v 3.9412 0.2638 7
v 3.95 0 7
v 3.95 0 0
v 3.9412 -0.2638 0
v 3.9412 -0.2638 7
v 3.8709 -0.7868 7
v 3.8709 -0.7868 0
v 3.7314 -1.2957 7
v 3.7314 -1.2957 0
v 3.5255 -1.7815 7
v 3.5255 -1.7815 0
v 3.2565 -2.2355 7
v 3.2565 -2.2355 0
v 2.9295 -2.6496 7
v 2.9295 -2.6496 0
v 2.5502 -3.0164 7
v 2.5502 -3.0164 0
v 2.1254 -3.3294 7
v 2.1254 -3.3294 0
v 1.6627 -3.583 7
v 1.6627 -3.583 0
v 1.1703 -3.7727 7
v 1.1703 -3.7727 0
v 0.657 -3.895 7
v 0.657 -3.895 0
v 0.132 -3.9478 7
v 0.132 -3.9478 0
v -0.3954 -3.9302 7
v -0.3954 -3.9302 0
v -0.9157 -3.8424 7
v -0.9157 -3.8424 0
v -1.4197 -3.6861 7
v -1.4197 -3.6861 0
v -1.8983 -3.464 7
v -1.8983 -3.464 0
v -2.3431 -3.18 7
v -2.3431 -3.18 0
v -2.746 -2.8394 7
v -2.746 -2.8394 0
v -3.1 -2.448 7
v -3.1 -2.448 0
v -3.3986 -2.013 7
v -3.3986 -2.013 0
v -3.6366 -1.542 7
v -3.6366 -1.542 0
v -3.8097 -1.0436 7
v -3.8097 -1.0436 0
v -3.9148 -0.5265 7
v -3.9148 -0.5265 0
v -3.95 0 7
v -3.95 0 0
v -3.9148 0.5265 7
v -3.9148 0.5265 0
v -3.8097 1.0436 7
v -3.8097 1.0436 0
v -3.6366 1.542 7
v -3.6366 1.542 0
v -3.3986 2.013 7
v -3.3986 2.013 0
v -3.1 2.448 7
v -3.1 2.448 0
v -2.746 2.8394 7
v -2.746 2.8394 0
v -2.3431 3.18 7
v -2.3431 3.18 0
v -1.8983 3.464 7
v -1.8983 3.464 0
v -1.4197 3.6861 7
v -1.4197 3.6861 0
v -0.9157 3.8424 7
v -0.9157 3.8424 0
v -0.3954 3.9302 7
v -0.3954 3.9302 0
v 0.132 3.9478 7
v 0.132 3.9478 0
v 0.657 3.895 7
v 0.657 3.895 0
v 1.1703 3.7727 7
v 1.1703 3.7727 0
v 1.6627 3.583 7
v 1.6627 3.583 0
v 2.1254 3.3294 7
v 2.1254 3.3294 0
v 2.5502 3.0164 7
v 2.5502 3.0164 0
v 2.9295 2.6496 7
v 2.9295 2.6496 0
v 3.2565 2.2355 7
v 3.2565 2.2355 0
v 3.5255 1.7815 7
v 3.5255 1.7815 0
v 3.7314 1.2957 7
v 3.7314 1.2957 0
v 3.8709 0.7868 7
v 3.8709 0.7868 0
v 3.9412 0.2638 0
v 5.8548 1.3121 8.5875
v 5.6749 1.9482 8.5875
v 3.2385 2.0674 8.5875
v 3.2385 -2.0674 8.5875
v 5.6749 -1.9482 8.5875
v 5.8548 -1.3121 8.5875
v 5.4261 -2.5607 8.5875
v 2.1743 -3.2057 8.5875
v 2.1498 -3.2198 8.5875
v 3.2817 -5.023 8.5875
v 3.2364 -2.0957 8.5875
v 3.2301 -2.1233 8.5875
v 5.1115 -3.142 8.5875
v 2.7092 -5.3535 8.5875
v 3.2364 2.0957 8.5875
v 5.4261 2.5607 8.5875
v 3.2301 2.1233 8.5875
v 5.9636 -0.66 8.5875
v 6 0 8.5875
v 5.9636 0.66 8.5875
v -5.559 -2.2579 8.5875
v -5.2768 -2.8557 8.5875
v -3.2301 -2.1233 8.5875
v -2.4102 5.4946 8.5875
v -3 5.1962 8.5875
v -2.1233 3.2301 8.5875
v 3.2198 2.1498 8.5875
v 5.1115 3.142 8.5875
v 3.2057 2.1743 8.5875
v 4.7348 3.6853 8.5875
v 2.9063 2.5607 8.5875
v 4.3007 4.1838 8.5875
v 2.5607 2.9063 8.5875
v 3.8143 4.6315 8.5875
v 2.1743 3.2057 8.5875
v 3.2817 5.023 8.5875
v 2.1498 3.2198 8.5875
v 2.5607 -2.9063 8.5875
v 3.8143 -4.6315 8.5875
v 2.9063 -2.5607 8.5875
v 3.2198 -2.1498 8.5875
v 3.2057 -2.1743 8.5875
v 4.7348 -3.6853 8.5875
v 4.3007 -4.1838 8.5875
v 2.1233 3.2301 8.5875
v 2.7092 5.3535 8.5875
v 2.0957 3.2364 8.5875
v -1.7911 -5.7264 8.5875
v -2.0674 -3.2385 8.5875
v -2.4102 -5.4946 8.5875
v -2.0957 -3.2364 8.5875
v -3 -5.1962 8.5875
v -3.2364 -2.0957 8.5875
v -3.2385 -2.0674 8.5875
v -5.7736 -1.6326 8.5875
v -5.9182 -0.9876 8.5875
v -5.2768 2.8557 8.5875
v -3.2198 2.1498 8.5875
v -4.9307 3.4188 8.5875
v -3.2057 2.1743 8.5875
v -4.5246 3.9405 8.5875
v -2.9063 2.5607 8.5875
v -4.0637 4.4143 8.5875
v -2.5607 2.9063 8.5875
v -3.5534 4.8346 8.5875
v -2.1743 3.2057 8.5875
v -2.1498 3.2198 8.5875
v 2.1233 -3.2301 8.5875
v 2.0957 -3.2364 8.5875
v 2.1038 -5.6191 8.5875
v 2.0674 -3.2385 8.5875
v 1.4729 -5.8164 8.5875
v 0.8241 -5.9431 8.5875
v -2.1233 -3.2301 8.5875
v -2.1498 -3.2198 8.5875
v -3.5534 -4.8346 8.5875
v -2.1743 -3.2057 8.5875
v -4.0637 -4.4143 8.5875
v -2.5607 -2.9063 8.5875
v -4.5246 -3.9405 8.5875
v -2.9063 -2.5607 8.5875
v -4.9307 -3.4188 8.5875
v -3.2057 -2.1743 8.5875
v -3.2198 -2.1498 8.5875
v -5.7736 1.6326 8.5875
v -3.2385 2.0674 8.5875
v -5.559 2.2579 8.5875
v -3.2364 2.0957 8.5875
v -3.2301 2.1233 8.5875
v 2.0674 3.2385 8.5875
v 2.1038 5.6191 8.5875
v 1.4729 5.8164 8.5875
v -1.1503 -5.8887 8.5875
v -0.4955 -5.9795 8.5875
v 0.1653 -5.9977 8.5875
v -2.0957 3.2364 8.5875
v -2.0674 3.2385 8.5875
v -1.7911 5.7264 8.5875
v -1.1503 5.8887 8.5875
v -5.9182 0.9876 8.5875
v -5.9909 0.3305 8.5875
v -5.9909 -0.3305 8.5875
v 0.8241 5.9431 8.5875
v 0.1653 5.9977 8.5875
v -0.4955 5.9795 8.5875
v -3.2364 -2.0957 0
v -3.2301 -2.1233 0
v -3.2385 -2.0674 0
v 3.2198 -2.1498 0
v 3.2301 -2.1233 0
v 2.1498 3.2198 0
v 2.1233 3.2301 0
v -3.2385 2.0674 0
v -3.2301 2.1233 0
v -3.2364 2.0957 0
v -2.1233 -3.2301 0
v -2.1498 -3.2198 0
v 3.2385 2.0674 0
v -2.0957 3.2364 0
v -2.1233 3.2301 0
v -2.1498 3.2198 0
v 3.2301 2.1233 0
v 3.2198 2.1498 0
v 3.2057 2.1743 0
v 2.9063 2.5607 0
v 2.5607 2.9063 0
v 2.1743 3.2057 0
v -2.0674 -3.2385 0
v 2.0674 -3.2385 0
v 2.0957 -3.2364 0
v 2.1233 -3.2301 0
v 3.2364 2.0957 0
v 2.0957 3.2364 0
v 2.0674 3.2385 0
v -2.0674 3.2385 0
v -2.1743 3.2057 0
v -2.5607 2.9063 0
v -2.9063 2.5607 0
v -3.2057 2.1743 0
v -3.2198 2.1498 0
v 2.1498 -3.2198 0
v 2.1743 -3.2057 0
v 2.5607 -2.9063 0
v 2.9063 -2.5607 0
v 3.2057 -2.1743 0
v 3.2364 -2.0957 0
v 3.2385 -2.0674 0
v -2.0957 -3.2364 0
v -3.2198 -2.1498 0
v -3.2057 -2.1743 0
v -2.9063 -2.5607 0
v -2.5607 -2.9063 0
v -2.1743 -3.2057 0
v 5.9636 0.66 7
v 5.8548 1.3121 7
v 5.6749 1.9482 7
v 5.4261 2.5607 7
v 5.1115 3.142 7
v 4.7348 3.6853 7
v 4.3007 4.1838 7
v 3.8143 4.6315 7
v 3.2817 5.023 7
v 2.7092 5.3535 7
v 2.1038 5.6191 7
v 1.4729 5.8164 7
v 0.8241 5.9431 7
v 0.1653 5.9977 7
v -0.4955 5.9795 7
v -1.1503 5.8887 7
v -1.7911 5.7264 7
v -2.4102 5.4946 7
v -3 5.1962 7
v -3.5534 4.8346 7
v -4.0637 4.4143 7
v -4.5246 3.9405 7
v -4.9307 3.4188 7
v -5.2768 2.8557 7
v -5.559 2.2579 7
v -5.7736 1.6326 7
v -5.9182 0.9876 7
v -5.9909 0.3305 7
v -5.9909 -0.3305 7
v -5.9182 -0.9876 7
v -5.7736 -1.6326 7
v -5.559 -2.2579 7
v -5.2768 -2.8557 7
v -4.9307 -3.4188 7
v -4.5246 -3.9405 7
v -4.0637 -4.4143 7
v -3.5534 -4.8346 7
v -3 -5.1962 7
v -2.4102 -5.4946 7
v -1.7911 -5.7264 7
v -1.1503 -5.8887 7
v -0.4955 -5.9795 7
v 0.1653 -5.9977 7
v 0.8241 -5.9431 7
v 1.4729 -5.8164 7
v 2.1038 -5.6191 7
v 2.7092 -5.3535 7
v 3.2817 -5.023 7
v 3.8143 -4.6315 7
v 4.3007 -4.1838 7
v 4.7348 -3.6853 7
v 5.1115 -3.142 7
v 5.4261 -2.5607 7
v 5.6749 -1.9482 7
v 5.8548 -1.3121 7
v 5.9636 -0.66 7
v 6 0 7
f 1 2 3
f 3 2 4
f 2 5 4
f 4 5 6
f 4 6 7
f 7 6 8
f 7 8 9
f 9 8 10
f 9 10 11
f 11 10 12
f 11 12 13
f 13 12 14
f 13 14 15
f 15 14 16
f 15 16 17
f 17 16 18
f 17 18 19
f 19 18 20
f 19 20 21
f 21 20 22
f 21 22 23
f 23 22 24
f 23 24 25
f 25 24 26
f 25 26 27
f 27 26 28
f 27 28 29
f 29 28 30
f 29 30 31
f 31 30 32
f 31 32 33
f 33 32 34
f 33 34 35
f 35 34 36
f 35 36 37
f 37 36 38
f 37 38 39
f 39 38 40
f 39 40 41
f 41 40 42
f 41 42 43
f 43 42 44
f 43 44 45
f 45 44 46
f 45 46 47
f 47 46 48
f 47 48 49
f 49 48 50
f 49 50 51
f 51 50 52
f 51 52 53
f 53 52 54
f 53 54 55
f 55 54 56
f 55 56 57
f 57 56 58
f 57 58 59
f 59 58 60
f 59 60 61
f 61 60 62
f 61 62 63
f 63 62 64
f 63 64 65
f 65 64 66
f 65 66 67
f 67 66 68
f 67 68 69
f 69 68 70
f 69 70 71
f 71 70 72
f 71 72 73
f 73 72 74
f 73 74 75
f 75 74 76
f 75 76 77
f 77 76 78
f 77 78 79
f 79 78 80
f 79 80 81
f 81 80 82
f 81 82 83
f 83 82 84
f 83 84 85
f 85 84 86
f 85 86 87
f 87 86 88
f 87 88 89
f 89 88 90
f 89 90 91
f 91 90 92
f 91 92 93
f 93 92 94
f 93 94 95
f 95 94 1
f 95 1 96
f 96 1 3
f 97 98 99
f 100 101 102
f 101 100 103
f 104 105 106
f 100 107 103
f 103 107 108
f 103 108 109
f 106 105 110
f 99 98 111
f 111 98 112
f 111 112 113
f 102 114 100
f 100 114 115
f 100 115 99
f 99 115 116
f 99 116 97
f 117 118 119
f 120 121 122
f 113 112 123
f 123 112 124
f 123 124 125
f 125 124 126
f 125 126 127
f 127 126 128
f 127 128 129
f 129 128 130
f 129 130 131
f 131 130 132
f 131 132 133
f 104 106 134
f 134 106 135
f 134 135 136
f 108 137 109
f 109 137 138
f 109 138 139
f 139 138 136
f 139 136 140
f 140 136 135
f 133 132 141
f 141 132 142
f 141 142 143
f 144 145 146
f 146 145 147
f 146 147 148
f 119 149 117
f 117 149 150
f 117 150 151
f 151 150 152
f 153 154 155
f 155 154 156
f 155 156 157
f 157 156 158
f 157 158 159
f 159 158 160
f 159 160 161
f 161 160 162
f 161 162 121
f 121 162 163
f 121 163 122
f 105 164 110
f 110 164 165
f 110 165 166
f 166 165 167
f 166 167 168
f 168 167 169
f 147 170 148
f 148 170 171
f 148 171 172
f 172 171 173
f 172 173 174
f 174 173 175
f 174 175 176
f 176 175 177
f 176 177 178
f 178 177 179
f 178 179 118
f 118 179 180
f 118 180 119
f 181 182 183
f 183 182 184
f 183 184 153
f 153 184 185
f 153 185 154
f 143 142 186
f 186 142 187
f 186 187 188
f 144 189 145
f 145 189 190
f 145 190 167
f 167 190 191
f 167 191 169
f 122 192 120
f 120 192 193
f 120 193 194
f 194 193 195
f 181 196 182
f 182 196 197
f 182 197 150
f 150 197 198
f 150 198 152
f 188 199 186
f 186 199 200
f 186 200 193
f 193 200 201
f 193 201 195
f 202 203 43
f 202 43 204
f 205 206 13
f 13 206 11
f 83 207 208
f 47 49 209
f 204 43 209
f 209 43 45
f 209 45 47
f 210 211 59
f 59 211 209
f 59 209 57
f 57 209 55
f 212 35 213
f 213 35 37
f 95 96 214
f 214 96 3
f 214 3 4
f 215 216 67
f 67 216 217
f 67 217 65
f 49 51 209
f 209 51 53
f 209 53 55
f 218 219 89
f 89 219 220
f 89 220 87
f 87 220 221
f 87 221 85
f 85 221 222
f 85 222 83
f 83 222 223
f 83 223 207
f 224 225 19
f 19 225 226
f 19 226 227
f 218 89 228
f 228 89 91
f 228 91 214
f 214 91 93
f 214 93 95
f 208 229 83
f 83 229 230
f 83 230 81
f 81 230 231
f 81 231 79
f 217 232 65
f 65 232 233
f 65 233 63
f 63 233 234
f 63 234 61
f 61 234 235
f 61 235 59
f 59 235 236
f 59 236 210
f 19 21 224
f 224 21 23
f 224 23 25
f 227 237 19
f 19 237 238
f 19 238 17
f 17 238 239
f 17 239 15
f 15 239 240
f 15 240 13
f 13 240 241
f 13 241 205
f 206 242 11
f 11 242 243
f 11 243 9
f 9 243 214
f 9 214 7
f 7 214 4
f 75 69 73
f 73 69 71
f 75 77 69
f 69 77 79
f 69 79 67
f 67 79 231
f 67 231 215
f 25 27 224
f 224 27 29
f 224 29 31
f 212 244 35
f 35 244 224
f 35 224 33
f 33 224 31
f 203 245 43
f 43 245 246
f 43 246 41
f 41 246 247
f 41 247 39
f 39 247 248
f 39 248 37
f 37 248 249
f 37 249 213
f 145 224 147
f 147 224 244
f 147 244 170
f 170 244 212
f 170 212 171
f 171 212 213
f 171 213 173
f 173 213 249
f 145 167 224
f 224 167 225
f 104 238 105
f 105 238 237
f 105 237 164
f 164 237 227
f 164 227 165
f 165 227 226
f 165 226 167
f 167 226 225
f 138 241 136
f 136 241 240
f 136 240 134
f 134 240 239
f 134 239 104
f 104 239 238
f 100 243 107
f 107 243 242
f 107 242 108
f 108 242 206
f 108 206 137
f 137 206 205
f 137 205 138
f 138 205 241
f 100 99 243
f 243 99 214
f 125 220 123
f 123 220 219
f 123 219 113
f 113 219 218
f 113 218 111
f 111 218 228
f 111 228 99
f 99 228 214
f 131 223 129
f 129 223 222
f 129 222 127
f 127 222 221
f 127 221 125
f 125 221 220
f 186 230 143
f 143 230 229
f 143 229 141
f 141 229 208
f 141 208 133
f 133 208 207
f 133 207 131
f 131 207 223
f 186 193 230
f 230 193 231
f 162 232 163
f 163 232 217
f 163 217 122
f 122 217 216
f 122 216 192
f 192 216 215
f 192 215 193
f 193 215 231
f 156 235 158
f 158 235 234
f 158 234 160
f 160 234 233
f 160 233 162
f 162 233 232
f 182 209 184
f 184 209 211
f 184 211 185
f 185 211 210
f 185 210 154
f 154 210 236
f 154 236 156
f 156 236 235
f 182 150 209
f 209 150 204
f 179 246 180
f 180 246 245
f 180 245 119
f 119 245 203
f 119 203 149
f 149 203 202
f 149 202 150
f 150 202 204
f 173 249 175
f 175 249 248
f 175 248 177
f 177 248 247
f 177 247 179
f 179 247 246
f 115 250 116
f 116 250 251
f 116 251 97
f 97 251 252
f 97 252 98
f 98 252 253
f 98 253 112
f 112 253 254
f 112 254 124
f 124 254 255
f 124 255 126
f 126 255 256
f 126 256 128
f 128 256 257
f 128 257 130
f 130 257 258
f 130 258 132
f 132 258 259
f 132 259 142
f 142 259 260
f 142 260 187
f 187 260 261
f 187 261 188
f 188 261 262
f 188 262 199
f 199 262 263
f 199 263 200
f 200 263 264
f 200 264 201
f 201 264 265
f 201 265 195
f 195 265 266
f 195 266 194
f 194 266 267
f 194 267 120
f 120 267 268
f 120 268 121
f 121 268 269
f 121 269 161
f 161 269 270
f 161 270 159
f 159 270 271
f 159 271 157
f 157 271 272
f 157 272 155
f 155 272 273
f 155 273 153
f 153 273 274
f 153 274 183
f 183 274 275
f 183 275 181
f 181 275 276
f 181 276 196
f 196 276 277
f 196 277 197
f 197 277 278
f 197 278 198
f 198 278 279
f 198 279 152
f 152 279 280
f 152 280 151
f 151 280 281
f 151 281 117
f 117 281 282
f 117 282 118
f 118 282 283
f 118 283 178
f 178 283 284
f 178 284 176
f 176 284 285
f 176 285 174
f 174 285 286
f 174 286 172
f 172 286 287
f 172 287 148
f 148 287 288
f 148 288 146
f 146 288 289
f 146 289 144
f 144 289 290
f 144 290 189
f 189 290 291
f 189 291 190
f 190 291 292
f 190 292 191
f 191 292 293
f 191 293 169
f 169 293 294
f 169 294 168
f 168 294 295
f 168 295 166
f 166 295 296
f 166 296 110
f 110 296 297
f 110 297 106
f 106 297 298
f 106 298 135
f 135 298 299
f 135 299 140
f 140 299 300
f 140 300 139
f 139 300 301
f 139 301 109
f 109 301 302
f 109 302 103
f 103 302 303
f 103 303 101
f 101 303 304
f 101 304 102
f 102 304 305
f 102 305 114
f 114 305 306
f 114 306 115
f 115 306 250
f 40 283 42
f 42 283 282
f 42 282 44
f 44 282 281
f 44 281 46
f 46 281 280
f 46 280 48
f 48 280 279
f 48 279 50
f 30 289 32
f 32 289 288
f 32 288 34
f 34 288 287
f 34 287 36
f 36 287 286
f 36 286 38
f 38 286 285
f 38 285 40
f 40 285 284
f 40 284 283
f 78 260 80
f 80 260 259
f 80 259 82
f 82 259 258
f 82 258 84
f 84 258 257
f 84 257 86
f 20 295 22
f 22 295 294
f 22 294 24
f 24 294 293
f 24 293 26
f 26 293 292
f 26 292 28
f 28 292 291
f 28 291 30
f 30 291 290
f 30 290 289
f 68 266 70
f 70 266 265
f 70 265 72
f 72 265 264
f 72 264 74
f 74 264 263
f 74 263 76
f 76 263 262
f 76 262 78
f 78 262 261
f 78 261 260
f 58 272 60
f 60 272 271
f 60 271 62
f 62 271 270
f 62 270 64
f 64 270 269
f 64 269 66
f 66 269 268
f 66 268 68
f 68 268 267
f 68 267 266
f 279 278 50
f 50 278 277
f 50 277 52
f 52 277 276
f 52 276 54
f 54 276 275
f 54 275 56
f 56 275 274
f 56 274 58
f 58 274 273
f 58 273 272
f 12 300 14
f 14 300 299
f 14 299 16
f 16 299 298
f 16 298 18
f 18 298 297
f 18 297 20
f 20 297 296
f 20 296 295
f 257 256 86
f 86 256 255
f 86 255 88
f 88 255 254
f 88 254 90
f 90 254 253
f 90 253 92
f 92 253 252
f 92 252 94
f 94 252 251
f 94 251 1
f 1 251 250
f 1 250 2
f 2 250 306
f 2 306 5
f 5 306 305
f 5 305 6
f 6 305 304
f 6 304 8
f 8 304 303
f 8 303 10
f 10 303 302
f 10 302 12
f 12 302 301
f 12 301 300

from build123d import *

# Parameters (mm, degrees)
BOSS_EXTRUDE1_OUTLINE_R = 3.9500048
BOSS_EXTRUDE1_DEPTH     = 8.5875
BOSS_EXTRUDE2_START     = -1.5875
SKETCH4_R               = 6
SKETCH4_R_2             = 3.9500048
BOSS_EXTRUDE2_DEPTH     = 1.5875


# Read off the part's stored shape, not the designer's step: Boss-Extrude1
with BuildPart() as part:
    # Boss-Extrude1 outline → Boss-Extrude1 (new body)
    with BuildSketch(Plane.XY):
        Circle(BOSS_EXTRUDE1_OUTLINE_R)
        with BuildLine():
            Line((2.067410216, -3.2385), (-2.067410216, -3.2385))
            ThreePointArc((-2.067410216, -3.2385), (-2.123342942, -3.230103762), (-2.174345227, -3.205655172))
            ThreePointArc((-2.174345227, -3.205655172), (-2.738978117, -2.738978117), (-3.205655172, -2.174345227))
            ThreePointArc((-3.205655172, -2.174345227), (-3.230103762, -2.123342942), (-3.2385, -2.067410216))
            Line((-3.2385, -2.067410216), (-3.2385, 2.067410216))
            ThreePointArc((-3.2385, 2.067410216), (-3.230103762, 2.123342942), (-3.205655172, 2.174345227))
            ThreePointArc((-3.205655172, 2.174345227), (-2.738978117, 2.738978117), (-2.174345227, 3.205655172))
            ThreePointArc((-2.174345227, 3.205655172), (-2.123342942, 3.230103762), (-2.067410216, 3.2385))
            Line((-2.067410216, 3.2385), (2.067410216, 3.2385))
            ThreePointArc((2.067410216, 3.2385), (2.123342942, 3.230103762), (2.174345227, 3.205655172))
            ThreePointArc((2.174345227, 3.205655172), (2.738978117, 2.738978117), (3.205655172, 2.174345227))
            ThreePointArc((3.205655172, 2.174345227), (3.230103762, 2.123342942), (3.2385, 2.067410216))
            Line((3.2385, 2.067410216), (3.2385, -2.067410216))
            ThreePointArc((3.2385, -2.067410216), (3.230103762, -2.123342942), (3.205655172, -2.174345227))
            ThreePointArc((3.205655172, -2.174345227), (2.738978117, -2.738978117), (2.174345227, -3.205655172))
            ThreePointArc((2.174345227, -3.205655172), (2.123342942, -3.230103762), (2.067410216, -3.2385))
        make_face(mode=Mode.SUBTRACT)
    extrude(amount=BOSS_EXTRUDE1_DEPTH)

    # Sketch4 → Boss-Extrude2 (add)
    with BuildSketch(Plane.XY.offset(8.5875).offset(BOSS_EXTRUDE2_START)):
        Circle(SKETCH4_R)
        Circle(SKETCH4_R_2, mode=Mode.SUBTRACT)
    extrude(amount=BOSS_EXTRUDE2_DEPTH)


solid = part.part
